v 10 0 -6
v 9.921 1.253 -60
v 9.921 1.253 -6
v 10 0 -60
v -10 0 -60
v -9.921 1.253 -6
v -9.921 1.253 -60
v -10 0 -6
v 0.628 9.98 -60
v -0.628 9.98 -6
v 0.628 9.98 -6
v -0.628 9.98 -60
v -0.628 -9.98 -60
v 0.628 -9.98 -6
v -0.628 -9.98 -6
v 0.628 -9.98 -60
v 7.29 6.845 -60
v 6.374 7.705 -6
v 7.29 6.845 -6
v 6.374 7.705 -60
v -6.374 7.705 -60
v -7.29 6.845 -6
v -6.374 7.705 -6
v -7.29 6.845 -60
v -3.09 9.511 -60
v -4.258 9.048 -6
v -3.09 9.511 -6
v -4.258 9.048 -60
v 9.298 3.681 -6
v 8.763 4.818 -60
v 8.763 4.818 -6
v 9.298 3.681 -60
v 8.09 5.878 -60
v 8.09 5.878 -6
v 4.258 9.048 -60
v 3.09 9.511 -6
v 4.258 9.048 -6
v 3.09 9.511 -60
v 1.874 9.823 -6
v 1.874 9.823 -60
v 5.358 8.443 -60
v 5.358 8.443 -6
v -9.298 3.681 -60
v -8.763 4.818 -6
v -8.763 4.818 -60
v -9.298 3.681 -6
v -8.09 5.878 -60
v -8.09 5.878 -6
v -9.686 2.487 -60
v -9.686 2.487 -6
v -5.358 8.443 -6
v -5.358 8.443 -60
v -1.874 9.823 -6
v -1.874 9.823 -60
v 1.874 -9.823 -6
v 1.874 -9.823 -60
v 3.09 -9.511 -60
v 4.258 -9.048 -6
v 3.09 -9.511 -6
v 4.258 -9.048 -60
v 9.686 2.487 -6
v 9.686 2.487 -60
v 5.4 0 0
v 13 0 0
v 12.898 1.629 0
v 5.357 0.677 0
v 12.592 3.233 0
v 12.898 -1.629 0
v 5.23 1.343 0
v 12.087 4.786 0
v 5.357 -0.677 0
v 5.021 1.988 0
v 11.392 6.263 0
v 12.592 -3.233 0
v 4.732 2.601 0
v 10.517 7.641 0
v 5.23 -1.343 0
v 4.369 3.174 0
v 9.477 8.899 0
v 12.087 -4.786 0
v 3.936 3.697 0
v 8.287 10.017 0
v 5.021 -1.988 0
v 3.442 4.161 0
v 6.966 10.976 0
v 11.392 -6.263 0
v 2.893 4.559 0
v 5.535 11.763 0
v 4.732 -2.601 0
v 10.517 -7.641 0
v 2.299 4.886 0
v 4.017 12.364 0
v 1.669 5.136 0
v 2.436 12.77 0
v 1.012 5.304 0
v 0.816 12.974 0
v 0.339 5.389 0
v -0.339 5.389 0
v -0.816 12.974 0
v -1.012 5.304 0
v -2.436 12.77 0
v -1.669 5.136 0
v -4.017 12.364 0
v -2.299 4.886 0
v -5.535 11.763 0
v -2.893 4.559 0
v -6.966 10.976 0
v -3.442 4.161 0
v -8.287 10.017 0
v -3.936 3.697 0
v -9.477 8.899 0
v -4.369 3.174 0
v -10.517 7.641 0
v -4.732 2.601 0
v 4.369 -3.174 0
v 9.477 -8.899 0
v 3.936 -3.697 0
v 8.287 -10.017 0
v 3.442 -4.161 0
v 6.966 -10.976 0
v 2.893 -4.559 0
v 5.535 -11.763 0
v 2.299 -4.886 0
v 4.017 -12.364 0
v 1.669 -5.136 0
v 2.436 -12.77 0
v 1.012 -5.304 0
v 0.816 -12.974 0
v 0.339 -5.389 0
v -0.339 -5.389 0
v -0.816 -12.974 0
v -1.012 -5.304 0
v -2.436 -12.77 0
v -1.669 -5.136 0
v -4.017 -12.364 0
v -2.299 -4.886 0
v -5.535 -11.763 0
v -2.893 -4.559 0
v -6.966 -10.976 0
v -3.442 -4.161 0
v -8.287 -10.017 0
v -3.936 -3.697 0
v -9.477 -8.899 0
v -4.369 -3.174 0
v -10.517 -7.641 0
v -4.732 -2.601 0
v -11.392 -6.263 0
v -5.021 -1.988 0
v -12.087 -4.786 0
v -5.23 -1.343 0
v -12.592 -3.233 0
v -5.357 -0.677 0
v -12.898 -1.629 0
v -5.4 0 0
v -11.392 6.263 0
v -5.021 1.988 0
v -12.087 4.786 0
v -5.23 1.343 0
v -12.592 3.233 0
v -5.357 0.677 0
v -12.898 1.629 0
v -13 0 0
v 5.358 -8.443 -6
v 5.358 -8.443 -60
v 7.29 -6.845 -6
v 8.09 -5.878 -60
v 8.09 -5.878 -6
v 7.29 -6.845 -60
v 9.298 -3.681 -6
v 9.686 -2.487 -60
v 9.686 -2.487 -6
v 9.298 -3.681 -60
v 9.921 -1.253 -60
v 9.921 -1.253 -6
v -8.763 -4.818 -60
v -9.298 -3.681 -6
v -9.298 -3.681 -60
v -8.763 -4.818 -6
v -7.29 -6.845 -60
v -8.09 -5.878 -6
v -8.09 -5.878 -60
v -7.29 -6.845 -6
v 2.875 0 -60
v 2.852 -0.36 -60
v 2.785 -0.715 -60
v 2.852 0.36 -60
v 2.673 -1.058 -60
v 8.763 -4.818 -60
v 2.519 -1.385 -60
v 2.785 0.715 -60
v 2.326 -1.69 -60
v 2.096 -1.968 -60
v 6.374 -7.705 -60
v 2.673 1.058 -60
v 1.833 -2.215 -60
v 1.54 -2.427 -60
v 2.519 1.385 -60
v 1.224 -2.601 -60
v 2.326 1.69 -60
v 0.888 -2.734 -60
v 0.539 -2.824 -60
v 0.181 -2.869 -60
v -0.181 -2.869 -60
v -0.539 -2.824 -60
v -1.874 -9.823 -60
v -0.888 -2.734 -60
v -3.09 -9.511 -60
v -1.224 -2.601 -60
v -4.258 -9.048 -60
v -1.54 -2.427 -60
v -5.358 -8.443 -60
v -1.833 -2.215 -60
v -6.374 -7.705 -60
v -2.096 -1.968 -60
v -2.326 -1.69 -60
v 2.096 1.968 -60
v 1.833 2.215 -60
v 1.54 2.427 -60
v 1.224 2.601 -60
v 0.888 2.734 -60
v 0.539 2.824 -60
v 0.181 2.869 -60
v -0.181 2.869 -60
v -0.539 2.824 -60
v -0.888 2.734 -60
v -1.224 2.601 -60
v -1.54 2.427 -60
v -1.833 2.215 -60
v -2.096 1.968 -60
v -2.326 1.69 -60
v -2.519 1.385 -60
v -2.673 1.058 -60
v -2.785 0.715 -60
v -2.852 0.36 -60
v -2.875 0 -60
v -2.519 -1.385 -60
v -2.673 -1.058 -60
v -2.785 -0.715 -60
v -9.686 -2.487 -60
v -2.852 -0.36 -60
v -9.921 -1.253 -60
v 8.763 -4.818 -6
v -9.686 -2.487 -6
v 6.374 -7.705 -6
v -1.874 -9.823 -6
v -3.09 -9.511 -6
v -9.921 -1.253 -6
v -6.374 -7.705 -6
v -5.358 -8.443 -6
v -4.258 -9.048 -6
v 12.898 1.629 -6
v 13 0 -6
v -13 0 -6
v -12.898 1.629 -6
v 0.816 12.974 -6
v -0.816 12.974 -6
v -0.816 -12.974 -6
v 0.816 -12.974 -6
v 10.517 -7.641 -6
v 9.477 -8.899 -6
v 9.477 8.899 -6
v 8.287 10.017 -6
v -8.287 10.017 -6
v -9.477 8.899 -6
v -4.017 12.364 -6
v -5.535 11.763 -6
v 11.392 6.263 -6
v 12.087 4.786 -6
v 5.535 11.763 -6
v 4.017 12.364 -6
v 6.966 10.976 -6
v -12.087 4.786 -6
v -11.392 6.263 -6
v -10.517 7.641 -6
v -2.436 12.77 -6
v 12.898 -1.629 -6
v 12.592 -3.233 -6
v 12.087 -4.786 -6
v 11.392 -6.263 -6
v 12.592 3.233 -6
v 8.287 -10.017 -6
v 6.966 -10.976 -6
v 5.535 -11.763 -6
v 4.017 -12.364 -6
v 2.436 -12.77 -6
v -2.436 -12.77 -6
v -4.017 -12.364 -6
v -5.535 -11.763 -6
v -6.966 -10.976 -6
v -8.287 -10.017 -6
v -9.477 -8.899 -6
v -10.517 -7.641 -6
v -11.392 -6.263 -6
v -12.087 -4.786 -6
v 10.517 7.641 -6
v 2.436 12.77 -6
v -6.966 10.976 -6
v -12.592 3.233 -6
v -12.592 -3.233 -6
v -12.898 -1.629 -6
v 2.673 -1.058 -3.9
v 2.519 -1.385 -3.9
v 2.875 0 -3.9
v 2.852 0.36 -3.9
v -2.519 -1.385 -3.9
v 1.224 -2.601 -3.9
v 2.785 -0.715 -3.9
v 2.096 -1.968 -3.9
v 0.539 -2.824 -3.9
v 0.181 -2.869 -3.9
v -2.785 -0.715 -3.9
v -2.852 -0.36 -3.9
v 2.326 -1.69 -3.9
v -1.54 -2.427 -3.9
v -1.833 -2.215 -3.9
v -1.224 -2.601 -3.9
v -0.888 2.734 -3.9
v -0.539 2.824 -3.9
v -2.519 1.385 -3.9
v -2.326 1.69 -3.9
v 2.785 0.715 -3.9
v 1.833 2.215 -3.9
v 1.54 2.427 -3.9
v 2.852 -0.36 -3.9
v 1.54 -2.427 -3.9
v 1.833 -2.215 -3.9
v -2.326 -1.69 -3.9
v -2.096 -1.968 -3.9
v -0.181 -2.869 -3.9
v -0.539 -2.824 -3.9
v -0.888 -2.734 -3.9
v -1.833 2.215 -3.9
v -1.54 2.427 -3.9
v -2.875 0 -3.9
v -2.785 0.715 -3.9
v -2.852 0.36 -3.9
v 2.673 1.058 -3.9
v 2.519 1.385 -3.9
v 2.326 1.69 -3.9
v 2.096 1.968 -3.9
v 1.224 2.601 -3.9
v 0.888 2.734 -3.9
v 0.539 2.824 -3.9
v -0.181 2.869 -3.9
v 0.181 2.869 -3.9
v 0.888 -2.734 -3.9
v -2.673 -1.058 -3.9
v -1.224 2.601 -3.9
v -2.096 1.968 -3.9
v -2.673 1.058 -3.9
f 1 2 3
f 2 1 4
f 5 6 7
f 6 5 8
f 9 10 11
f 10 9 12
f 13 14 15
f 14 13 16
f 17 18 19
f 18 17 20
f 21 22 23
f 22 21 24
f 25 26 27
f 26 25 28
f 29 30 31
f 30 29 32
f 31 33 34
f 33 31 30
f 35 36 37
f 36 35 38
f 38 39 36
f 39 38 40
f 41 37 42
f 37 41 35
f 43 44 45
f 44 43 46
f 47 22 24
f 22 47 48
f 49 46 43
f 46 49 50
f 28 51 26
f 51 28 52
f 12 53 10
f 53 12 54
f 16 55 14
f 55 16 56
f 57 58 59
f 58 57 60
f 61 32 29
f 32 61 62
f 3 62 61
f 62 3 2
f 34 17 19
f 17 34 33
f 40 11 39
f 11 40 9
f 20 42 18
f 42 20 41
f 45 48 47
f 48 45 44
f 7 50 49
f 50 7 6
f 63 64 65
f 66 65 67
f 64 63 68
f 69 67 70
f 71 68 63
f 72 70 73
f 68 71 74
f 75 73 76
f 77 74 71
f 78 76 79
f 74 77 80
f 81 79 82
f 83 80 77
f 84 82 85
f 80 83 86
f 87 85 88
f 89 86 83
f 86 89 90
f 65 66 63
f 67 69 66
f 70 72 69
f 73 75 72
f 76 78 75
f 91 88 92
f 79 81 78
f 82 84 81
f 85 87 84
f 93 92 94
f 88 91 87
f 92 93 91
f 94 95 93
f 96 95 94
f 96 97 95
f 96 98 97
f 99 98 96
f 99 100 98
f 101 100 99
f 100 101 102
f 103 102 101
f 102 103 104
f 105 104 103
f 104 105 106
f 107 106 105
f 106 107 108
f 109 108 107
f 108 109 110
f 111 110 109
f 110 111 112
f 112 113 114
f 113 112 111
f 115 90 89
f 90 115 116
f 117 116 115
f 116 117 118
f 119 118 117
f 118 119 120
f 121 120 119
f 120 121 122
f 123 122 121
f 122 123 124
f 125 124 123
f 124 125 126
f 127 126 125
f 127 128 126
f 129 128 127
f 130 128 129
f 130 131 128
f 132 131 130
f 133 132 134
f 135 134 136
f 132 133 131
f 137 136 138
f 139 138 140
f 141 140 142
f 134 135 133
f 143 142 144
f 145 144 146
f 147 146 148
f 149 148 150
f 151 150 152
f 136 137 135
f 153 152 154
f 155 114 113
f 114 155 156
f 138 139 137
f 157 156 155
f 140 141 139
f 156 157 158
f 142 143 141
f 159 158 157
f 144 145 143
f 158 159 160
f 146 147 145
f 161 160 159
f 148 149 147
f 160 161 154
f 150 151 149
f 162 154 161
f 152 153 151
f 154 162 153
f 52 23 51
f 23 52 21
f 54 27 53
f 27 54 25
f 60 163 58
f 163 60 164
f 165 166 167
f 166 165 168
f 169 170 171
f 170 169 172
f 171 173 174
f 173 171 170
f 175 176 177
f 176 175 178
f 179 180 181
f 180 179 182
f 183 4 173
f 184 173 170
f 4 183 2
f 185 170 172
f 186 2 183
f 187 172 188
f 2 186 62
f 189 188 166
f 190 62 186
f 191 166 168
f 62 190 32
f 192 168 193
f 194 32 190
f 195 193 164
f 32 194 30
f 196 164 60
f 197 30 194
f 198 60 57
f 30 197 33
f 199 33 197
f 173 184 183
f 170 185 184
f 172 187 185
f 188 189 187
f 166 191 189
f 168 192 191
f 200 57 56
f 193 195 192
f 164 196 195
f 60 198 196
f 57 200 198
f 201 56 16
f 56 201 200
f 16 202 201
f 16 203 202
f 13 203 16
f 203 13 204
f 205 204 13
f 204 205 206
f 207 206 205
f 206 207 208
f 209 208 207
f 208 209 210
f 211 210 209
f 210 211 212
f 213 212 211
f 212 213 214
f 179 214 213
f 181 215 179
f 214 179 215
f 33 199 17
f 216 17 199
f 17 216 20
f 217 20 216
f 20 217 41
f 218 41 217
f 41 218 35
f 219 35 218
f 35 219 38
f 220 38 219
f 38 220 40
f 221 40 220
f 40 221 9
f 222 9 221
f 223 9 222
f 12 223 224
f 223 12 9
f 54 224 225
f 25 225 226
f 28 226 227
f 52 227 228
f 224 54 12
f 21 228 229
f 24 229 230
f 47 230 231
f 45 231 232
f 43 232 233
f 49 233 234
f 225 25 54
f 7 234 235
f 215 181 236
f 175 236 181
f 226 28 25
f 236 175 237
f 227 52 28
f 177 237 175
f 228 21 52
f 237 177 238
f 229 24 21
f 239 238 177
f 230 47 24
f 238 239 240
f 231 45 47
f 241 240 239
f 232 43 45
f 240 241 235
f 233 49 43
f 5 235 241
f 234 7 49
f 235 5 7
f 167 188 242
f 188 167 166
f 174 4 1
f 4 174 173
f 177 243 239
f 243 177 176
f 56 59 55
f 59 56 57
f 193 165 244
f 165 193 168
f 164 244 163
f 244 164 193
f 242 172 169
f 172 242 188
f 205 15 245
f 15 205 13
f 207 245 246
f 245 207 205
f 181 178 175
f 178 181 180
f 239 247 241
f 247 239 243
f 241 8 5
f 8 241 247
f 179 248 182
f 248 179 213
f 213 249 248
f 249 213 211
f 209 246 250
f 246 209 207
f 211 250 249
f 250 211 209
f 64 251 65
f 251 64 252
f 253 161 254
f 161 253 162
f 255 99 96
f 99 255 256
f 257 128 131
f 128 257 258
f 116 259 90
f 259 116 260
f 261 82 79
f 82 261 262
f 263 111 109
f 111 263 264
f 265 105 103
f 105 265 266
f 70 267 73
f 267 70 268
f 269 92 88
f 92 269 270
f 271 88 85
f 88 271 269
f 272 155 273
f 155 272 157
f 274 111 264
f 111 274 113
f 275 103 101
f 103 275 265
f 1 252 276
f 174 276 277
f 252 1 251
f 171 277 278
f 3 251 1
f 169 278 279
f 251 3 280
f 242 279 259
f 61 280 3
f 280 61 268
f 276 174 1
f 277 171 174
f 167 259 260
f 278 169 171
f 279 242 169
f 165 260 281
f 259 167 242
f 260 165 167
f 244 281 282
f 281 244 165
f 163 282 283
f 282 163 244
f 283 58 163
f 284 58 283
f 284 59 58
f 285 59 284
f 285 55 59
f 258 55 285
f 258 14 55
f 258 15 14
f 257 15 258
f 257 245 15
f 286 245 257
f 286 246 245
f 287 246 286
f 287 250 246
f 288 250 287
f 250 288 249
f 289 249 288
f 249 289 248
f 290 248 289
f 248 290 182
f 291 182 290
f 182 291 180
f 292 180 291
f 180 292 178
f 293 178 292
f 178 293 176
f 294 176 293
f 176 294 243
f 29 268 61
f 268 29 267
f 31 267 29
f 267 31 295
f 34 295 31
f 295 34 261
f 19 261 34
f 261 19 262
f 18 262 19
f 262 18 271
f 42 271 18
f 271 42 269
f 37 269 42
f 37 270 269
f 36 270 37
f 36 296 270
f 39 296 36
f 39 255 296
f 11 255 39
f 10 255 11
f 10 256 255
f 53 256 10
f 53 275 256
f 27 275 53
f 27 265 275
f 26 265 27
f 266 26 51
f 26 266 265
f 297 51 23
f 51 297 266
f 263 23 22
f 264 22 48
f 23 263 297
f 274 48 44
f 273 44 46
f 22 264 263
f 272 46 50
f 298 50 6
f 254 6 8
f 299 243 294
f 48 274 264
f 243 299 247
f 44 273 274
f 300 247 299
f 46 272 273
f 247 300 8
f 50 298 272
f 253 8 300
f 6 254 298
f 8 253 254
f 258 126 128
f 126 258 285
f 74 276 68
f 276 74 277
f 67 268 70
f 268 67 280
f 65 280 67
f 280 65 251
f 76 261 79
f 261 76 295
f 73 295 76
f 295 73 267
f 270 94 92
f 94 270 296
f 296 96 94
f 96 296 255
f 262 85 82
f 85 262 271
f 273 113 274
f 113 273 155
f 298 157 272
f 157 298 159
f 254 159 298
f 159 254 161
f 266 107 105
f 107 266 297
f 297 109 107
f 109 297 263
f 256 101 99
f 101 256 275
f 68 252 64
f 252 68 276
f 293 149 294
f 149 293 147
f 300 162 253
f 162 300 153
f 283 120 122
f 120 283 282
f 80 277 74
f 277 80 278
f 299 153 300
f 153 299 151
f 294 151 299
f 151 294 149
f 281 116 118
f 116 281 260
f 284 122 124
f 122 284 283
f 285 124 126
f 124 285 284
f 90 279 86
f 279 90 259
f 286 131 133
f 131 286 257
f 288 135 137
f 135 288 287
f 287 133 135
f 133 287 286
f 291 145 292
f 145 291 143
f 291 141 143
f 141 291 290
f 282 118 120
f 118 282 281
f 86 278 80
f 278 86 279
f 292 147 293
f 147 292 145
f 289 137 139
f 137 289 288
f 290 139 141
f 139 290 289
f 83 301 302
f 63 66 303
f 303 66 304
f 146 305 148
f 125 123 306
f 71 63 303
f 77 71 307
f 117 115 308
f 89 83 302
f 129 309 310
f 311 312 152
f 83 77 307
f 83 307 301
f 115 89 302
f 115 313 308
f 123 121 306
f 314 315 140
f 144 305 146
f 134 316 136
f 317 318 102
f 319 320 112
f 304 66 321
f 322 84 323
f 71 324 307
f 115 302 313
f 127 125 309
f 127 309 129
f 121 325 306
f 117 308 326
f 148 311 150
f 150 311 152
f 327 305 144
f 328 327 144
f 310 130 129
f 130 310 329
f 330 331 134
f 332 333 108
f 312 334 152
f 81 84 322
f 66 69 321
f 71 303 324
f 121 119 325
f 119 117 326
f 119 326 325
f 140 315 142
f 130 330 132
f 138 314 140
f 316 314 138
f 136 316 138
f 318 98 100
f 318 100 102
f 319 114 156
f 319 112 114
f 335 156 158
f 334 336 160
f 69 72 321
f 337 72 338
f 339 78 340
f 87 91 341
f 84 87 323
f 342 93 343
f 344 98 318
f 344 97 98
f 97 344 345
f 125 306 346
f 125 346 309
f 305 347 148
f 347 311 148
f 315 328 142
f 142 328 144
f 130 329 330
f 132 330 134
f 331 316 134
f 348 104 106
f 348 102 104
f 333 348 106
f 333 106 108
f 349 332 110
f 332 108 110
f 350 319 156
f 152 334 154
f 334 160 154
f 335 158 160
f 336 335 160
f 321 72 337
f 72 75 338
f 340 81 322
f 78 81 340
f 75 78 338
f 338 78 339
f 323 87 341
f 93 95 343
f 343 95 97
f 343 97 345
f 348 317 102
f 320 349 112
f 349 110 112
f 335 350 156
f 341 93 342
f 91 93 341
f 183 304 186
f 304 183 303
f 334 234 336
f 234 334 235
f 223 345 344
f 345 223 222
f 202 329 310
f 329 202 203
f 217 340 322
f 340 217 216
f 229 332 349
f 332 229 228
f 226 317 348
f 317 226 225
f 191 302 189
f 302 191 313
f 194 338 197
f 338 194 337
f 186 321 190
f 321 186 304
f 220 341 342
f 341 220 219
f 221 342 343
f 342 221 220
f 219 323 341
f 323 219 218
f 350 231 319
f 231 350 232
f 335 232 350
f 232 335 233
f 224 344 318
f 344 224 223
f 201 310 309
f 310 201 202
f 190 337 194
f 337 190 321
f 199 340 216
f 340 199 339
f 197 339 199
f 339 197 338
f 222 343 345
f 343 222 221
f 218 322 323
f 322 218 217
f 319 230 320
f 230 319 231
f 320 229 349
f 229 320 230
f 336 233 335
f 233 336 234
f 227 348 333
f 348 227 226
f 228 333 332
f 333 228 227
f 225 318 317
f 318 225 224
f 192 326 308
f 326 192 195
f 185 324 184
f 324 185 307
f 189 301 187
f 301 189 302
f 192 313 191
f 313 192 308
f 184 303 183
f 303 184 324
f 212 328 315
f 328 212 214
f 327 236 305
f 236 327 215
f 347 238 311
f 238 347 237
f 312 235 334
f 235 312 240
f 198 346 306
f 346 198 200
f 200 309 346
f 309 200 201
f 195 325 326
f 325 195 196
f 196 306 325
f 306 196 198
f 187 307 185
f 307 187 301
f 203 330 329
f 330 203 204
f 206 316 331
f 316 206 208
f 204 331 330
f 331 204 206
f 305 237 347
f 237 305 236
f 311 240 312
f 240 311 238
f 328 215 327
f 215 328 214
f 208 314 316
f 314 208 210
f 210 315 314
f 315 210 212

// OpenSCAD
$fn = 50;


difference() {
	union() {
		translate(v = [0, 0, -60.0000000000]) {
			cylinder(h = 60, r = 10.0000000000);
		}
		translate(v = [0, 0, -6.0000000000]) {
			cylinder(h = 6, r = 13.0000000000);
		}
	}
	union() {
		translate(v = [0, 0, 0]) {
			rotate(a = [0, 0, 0]) {
				difference() {
					union() {
						#translate(v = [0, 0, -60.0000000000]) {
							cylinder(h = 60, r = 2.6000000000);
						}
						#translate(v = [0, 0, -3.9000000000]) {
							cylinder(h = 3.9000000000, r = 10.0000000000, r1 = 2.8750000000, r2 = 5.4000000000);
						}
						#translate(v = [0, 0, -60.0000000000]) {
							cylinder(h = 60, r = 2.8750000000);
						}
						#translate(v = [0, 0, -60.0000000000]) {
							cylinder(h = 60, r = 2.6000000000);
						}
					}
					union();
				}
			}
		}
	}
}
